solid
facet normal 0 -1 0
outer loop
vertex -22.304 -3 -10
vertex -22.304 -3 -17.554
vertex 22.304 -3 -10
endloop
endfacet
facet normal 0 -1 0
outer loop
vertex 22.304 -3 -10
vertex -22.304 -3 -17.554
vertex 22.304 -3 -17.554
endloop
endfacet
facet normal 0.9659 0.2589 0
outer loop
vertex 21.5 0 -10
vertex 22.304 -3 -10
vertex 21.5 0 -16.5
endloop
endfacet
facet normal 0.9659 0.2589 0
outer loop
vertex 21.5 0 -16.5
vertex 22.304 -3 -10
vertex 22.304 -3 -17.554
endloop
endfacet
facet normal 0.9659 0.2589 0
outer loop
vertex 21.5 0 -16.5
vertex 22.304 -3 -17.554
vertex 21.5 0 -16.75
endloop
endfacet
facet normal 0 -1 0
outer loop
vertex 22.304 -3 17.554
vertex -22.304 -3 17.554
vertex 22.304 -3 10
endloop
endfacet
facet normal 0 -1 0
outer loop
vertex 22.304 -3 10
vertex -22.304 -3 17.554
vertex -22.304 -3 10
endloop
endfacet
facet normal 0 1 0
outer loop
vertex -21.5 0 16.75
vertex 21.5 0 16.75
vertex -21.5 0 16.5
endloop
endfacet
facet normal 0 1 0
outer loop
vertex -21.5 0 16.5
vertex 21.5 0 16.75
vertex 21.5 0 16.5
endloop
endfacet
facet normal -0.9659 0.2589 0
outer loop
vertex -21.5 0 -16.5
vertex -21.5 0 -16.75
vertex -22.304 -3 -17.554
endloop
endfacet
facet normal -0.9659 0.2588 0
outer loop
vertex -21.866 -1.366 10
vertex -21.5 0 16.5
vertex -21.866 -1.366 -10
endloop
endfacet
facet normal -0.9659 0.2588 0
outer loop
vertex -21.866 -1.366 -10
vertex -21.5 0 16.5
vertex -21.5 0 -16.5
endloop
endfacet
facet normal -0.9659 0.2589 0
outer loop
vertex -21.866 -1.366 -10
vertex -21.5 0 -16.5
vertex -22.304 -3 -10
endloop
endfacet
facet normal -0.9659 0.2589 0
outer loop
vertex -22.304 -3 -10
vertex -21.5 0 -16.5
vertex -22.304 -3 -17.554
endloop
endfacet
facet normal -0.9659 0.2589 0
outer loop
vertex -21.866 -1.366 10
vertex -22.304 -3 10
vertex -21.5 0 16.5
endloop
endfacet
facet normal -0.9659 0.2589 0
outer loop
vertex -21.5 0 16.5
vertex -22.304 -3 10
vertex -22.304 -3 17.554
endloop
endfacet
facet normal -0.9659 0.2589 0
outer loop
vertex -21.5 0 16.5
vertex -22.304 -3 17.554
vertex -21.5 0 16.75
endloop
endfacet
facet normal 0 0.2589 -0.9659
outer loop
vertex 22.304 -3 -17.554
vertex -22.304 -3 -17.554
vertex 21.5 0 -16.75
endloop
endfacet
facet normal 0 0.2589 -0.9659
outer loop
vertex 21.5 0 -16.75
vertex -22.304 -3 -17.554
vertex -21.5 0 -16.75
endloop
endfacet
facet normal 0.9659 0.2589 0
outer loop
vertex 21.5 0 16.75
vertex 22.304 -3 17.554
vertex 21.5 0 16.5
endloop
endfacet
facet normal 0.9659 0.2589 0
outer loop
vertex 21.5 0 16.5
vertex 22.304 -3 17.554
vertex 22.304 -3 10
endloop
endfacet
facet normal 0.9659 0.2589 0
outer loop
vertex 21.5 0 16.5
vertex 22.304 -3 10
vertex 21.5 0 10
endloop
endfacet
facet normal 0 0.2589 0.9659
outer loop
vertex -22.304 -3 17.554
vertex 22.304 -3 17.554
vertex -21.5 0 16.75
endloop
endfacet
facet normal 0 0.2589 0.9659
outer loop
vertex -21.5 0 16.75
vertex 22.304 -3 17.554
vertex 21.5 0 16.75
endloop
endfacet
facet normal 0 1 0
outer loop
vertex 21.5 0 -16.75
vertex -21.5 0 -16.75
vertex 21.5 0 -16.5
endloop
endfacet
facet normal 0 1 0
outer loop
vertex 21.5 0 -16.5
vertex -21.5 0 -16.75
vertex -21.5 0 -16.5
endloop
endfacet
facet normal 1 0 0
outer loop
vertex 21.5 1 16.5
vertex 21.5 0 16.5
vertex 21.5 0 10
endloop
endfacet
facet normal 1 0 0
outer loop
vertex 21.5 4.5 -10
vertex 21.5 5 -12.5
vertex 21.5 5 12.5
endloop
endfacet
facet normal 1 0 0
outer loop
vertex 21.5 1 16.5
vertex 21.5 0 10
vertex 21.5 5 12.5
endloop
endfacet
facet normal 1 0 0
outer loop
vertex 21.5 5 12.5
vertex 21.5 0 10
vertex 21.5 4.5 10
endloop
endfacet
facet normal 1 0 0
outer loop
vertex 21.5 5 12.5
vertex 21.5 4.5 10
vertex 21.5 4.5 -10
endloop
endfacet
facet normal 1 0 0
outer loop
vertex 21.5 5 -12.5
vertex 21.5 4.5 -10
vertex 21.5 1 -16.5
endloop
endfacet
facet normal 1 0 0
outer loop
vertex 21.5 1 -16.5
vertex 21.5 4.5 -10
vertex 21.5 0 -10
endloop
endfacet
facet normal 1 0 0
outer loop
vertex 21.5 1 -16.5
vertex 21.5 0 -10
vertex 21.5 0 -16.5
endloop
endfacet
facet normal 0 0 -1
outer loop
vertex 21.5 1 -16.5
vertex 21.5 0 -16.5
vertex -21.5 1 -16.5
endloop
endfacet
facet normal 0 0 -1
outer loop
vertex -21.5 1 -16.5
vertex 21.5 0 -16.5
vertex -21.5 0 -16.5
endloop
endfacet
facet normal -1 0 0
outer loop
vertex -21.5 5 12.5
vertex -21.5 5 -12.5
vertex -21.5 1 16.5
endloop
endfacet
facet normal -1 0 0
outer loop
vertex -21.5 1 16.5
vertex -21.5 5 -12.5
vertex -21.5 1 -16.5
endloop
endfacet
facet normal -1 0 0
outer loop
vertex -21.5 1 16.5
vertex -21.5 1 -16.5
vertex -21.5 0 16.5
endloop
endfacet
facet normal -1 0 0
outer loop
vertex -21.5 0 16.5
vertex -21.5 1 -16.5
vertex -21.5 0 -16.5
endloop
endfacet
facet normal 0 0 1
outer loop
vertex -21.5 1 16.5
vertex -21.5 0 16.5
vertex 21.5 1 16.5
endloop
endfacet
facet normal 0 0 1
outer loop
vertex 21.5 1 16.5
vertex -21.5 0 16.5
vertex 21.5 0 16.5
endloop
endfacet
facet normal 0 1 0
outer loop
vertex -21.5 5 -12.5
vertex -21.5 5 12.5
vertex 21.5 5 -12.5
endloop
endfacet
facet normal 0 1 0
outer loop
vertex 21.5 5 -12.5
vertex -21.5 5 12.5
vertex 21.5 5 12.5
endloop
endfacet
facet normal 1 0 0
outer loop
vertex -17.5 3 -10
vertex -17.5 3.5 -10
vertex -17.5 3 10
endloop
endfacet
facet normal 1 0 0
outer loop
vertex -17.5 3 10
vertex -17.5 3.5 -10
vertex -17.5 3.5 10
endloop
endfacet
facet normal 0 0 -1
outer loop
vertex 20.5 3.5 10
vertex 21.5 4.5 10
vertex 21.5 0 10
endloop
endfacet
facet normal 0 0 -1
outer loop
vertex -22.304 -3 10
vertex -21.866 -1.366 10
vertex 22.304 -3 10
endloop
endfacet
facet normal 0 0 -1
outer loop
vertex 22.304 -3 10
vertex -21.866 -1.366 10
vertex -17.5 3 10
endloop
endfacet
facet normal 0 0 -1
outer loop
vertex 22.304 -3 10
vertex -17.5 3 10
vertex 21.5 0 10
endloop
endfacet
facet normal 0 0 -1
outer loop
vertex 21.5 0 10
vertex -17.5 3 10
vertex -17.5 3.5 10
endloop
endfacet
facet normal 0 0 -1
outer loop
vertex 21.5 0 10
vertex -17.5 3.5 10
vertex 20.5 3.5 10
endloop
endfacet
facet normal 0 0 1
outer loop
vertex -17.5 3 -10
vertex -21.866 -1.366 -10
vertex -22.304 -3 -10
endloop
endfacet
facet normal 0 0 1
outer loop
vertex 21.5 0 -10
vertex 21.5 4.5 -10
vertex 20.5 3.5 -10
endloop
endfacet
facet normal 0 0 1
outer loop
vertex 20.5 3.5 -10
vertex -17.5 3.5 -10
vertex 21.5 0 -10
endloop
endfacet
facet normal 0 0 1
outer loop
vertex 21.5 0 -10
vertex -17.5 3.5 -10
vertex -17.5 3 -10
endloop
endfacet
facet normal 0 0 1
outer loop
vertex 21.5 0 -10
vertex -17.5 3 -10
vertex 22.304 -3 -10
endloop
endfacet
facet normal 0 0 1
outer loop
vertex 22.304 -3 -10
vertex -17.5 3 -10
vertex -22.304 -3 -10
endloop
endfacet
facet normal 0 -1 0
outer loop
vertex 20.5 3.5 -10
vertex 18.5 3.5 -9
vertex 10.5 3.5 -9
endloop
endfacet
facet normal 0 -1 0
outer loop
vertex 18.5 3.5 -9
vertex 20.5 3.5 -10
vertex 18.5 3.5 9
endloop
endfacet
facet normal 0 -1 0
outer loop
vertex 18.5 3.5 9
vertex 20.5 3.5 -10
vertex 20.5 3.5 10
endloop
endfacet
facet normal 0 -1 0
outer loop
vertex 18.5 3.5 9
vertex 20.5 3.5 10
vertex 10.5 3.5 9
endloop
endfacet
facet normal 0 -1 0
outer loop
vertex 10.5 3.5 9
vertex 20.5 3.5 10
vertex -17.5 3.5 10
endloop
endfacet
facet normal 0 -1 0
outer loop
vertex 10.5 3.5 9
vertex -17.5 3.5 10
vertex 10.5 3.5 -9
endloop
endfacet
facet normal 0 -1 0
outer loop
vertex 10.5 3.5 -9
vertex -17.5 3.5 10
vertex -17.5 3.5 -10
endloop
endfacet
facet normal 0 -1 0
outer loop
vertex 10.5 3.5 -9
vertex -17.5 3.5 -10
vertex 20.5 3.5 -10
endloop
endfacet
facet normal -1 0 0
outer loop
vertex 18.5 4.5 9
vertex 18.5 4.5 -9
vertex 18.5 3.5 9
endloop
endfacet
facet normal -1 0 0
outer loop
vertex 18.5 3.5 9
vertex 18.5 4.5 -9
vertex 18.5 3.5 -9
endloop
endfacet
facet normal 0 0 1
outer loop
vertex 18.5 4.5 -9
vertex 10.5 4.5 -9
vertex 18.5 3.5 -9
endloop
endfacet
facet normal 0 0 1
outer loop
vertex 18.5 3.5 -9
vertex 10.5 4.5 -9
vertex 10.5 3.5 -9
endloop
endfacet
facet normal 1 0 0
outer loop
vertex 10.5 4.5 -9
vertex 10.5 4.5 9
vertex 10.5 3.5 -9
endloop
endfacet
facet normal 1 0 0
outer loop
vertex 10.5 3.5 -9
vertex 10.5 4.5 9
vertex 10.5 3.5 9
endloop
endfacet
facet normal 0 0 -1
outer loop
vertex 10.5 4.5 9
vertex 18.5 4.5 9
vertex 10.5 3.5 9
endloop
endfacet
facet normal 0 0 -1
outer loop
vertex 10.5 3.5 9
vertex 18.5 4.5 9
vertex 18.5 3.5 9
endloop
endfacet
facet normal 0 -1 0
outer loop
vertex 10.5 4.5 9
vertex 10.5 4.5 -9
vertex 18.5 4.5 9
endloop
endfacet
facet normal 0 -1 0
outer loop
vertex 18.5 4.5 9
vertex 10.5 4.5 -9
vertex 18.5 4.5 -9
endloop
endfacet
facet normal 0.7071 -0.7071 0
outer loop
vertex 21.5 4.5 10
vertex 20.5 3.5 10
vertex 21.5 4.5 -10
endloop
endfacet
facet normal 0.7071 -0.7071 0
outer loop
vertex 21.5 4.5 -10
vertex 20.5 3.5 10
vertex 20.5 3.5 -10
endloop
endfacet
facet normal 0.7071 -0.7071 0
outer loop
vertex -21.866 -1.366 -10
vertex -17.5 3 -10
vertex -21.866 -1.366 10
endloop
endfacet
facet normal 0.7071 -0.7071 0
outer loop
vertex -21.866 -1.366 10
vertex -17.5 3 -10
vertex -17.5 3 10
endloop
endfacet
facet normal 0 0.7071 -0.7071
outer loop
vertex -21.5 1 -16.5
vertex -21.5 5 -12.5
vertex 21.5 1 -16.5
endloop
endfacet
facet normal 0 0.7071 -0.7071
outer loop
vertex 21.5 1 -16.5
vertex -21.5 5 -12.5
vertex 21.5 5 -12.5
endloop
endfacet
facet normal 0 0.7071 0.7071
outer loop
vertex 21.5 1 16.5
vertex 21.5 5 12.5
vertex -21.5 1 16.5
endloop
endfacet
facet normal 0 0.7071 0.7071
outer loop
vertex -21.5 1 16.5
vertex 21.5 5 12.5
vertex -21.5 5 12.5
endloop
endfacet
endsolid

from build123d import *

# Parameters (mm, degrees)
SKETCH_1_W          = 43
SKETCH_1_H          = 33.5
EXTRUDE_1_DEPTH     = 3
EXTRUDE_1_DRAFT     = 15
SKETCH_2_W          = 43
SKETCH_2_H          = 33
EXTRUDE_2_DEPTH     = 5
SKETCH_3_W          = 20
SKETCH_3_H          = 7
CUT_EXTRUDE_1_DEPTH = 39
SKETCH_4_W          = 8
SKETCH_4_H          = 18
CUT_EXTRUDE_2_DEPTH = 1
CHAMFER_1_SIZE      = 1
CHAMFER_2_SIZE      = 6
CHAMFER_3_SIZE      = 4
SKETCH_5_W          = 20
SKETCH_5_H          = 3
CUT_EXTRUDE_3_DEPTH = 48.454342555


with BuildPart() as part:
    # Эскиз1 → Бобышка-Вытянуть1 (with draft: the straight prism first)
    with BuildSketch(Plane(origin=(0, 0, 0), x_dir=(1, 0, 0), z_dir=(0, 1, 0))):
        Rectangle(SKETCH_1_W, SKETCH_1_H)
    extrude(amount=-EXTRUDE_1_DEPTH)
    # Бобышка-Вытянуть1: the draft: its side faces are tilted about the plane it starts from
    extrude_1_sides = [part.faces().sort_by_distance(p)[0] for p in [
        (21.5, -1.5, 0),
        (0, -1.5, -16.75),
        (-21.5, -1.5, 0),
        (0, -1.5, 16.75),
    ]]
    draft(extrude_1_sides, Plane(origin=(0, 0, 0), x_dir=(1, 0, 0), z_dir=(0, 1, 0)), EXTRUDE_1_DRAFT)

    # Эскиз2 → Бобышка-Вытянуть2 (add)
    with BuildSketch(Plane(origin=(0, 0, 0), x_dir=(1, 0, 0), z_dir=(0, 1, 0))):
        Rectangle(SKETCH_2_W, SKETCH_2_H)
    extrude(amount=EXTRUDE_2_DEPTH)

    # Эскиз3 → Вырез-Вытянуть1 (cut)
    with BuildSketch(Plane(origin=(21.5, 0, 0), x_dir=(0, 0, -1), z_dir=(1, 0, 0))):
        Rectangle(SKETCH_3_W, SKETCH_3_H)
    extrude(amount=-CUT_EXTRUDE_1_DEPTH, mode=Mode.SUBTRACT)

    # Эскиз4 → Вырез-Вытянуть2 (cut)
    with BuildSketch(Plane.XZ.offset(-3.5)):
        with Locations((14.5, 0)):
            Rectangle(SKETCH_4_W, SKETCH_4_H)
    extrude(amount=-CUT_EXTRUDE_2_DEPTH, mode=Mode.SUBTRACT)

    # Фаска1
    chamfer_1_edges = [part.edges().sort_by_distance(p)[0] for p in [
        (21.5, 3.5, 0),
    ]]
    chamfer(chamfer_1_edges, length=CHAMFER_1_SIZE)

    # Фаска2
    # the kernel refuses this chamfer: 6 mm, written as the material it takes off along each edge
    with BuildSketch(Plane(origin=(-17.5, -3, -10), x_dir=(0.027495876610586202, 0.9996219169112968, 0), z_dir=(0, 0, 1))) as chamfer_2_piece_1:
        Polygon((CHAMFER_2_SIZE * 0.999621916911, CHAMFER_2_SIZE * 0.0274958766106), (-CHAMFER_2_SIZE * 0.0274958766106, CHAMFER_2_SIZE * 0.999621916911), (0, 0), align=None)
    extrude(amount=20, mode=Mode.SUBTRACT)

    # Фаска3
    chamfer_3_edges = [part.edges().sort_by_distance(p)[0] for p in [
        (0, 5, -16.5),
        (0, 5, 16.5),
    ]]
    chamfer(chamfer_3_edges, length=CHAMFER_3_SIZE)

    # Эскиз5 → Вырез-Вытянуть3 (cut, through all)
    with BuildSketch(Plane.ZY.offset(-21.5)):
        with Locations((0, -1.5)):
            Rectangle(SKETCH_5_W, SKETCH_5_H)
    extrude(amount=-CUT_EXTRUDE_3_DEPTH, mode=Mode.SUBTRACT)


solid = part.part
